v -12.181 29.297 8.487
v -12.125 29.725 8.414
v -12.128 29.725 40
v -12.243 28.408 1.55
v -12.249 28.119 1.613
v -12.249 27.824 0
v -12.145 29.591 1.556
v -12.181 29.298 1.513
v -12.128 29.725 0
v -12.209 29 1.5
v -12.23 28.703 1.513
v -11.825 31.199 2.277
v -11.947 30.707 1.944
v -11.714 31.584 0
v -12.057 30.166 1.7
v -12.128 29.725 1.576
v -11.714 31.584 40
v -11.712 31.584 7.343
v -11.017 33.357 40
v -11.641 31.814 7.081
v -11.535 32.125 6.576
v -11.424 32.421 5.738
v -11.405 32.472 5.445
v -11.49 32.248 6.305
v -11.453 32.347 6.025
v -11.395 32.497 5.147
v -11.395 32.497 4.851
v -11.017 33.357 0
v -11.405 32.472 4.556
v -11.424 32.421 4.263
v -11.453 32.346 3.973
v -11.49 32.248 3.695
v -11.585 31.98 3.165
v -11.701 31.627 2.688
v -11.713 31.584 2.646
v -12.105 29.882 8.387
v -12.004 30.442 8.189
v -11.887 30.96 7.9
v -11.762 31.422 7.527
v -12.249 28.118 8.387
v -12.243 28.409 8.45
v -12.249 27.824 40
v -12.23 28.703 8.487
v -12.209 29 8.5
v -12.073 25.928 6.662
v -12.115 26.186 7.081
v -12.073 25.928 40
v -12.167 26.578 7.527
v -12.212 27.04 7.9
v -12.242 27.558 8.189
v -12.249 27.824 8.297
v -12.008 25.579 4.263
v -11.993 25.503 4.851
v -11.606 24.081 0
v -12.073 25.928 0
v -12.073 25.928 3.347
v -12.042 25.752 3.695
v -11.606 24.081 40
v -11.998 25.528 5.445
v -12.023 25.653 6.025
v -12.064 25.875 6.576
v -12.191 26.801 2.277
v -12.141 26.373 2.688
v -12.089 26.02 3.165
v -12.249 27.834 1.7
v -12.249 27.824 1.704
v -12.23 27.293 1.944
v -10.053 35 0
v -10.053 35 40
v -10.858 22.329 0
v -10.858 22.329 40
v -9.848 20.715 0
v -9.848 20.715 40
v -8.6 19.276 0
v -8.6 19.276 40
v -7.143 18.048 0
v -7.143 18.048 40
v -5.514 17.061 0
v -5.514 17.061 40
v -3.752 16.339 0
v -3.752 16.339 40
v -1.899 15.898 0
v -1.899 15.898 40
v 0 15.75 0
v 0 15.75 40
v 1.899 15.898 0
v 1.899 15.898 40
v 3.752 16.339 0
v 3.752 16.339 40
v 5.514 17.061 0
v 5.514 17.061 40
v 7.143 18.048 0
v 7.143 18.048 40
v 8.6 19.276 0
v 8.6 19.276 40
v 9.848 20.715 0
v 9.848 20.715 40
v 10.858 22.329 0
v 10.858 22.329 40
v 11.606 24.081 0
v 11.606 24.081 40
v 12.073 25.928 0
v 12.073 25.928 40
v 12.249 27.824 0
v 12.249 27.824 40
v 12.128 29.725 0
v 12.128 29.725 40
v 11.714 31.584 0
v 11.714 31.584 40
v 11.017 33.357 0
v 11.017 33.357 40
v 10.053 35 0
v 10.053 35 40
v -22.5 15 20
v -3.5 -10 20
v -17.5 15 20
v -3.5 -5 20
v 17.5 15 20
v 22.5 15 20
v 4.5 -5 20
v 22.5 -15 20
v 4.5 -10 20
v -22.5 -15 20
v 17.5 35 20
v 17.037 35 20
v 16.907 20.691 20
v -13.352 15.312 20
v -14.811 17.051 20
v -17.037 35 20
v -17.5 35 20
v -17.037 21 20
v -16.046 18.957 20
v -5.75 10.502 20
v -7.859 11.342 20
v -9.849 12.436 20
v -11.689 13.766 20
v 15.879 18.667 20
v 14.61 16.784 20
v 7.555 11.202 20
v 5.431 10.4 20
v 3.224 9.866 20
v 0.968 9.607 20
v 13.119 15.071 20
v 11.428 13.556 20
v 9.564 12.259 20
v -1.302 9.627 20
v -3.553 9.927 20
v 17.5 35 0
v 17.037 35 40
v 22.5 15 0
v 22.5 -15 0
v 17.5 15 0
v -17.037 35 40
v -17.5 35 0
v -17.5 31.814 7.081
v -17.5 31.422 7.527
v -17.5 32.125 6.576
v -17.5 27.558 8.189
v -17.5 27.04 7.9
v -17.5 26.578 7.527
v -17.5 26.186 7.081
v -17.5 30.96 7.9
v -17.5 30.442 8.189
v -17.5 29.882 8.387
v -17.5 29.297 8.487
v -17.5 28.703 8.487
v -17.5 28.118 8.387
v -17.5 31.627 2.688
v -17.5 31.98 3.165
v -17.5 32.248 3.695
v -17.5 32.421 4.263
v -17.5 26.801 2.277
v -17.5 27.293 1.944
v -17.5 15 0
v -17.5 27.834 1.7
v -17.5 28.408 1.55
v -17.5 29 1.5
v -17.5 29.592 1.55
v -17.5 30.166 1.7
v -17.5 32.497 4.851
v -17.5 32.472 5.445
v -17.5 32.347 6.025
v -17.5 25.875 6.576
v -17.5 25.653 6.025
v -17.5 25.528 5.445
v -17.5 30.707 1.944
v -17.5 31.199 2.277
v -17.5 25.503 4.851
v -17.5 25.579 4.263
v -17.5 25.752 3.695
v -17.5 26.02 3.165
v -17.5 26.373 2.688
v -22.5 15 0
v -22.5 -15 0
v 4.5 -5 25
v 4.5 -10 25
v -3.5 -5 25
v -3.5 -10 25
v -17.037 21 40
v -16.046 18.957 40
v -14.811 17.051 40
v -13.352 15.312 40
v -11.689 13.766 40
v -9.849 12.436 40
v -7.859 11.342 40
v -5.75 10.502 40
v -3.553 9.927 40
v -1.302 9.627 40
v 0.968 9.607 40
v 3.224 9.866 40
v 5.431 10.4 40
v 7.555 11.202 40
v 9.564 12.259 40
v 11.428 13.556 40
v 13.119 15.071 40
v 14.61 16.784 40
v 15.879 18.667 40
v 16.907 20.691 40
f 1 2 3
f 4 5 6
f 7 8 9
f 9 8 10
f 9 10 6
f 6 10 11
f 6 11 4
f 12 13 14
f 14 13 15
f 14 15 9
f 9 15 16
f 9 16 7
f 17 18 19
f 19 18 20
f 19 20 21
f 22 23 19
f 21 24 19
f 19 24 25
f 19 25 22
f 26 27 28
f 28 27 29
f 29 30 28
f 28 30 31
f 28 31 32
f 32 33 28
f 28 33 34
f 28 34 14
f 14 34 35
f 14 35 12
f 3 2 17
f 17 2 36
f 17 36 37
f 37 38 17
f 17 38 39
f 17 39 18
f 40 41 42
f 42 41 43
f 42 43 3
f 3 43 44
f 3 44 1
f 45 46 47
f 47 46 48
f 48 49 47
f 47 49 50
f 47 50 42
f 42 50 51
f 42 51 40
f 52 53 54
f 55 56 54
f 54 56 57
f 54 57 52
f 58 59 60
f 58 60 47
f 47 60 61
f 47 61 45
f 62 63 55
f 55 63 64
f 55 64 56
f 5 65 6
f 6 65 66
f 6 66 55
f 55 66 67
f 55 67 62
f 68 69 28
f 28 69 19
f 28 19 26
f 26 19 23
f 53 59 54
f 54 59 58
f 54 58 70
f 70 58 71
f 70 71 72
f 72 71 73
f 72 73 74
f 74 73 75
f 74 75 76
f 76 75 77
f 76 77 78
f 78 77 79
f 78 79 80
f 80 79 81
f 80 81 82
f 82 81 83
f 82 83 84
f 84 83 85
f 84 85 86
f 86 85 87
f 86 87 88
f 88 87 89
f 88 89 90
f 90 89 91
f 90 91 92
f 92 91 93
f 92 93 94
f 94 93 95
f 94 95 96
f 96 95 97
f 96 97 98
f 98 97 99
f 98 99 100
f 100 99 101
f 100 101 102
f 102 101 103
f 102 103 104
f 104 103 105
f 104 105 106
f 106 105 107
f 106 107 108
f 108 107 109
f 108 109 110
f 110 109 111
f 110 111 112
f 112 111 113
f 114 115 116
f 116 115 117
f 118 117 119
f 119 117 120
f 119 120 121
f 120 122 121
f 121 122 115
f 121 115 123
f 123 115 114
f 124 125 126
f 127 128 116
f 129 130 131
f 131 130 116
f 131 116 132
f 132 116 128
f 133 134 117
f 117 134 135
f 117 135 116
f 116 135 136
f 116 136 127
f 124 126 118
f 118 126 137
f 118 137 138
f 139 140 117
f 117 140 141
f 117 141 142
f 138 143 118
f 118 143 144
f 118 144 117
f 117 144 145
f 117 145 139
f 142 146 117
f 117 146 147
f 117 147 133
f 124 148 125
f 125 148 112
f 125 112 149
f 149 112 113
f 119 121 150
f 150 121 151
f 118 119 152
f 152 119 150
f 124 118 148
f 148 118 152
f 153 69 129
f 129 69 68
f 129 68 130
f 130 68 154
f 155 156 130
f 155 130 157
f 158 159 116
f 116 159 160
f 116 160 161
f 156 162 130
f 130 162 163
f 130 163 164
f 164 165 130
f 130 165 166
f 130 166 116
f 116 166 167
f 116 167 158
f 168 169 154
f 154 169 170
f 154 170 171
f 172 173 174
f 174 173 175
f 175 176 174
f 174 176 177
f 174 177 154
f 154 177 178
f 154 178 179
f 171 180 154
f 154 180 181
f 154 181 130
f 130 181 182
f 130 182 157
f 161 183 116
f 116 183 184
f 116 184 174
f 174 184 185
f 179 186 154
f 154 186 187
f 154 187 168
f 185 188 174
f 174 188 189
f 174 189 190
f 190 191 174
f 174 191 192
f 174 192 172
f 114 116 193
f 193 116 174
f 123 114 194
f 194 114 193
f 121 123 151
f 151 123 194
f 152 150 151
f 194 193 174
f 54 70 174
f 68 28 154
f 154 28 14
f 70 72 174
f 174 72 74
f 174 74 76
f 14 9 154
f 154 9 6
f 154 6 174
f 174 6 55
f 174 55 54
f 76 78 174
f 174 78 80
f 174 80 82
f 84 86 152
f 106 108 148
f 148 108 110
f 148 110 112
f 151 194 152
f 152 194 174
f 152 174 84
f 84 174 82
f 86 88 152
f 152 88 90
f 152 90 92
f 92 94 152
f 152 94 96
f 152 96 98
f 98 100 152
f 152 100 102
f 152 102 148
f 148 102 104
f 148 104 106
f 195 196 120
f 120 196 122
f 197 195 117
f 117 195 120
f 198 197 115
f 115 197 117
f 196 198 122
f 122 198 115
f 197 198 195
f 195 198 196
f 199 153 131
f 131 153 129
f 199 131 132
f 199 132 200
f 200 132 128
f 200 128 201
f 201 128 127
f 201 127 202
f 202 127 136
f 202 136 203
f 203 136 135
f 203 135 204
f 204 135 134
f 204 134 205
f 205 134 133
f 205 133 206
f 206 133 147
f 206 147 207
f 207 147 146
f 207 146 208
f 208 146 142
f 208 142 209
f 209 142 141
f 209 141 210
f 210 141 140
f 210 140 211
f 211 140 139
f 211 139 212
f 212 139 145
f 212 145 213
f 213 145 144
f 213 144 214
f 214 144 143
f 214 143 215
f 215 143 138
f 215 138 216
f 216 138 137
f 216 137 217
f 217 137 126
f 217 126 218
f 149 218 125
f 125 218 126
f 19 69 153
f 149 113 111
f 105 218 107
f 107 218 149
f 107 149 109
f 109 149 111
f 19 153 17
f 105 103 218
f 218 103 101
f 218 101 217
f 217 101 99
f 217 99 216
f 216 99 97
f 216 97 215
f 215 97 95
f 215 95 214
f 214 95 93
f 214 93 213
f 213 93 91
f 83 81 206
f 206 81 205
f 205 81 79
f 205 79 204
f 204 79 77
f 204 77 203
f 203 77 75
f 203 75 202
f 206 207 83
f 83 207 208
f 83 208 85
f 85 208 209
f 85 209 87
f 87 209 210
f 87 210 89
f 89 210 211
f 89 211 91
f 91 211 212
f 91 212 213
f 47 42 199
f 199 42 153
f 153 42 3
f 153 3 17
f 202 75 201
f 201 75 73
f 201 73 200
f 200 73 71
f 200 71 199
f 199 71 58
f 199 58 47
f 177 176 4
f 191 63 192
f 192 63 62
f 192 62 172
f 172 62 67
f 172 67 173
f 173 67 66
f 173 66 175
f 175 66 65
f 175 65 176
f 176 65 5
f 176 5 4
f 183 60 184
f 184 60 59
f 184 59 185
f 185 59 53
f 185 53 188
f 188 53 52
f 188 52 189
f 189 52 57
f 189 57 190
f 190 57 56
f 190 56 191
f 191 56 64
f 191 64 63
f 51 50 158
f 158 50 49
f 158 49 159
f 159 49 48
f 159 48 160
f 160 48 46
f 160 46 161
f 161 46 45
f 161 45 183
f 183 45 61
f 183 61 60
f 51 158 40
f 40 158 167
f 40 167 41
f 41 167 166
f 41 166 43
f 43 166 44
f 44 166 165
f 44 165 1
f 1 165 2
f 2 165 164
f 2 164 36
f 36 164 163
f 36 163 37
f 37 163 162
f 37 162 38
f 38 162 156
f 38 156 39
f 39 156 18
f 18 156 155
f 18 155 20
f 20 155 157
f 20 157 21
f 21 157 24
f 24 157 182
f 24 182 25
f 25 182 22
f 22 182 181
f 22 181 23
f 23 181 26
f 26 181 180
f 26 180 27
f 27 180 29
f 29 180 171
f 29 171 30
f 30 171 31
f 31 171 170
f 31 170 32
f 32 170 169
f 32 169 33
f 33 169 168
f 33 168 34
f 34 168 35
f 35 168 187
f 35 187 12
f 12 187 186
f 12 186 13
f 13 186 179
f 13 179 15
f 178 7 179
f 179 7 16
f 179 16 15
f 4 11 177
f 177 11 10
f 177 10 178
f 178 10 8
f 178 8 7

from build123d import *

# Parameters (mm, degrees)
BOSS_EXTRUDE1_DEPTH     = 20
SKETCH2_W               = 8
SKETCH2_H               = 5
BOSS_EXTRUDE2_DEPTH     = 5
SKETCH3_R               = 12.25
CUT_EXTRUDE1_DEPTH      = 20
BOSS_EXTRUDE3_DEPTH     = 20
SKETCH6_R               = 3.5
CUT_EXTRUDE2_DEPTH      = 1
CUT_EXTRUDE2_DEPTH_BACK = 8


with BuildPart() as part:
    # Sketch1 → Boss-Extrude1 (new body)
    with BuildSketch(Plane.XY):
        Polygon((17.5, 15), (22.5, 15), (22.5, -15), (-22.5, -15), (-22.5, 15), (-17.5, 15), (-17.5, 35), (17.5, 35), align=None)
    extrude(amount=BOSS_EXTRUDE1_DEPTH)

    # Sketch2 → Boss-Extrude2 (add)
    with BuildSketch(Plane.XY.offset(20)):
        with Locations((0.5, -7.5)):
            Rectangle(SKETCH2_W, SKETCH2_H)
    extrude(amount=BOSS_EXTRUDE2_DEPTH)

    # Sketch3 → Cut-Extrude1 (cut)
    with BuildSketch(Plane.XY.offset(20)):
        with Locations((0, 28)):
            Circle(SKETCH3_R)
    extrude(amount=-CUT_EXTRUDE1_DEPTH, mode=Mode.SUBTRACT)

    # Sketch4 → Boss-Extrude3 (add)
    with BuildSketch(Plane.XY.offset(20)):
        with BuildLine():
            Line((-17.036725037, 35), (-17.036725037, 21))
            ThreePointArc((-17.036725037, 21), (-0.167488081, 9.582021073), (16.906605879, 20.691328599))
            Line((16.906605879, 20.691328599), (17.036725037, 35))
            Line((17.036725037, 35), (10.052984631, 35))
            ThreePointArc((10.052984631, 35), (0, 15.75), (-10.052984631, 35))
            Line((-10.052984631, 35), (-17.036725037, 35))
        make_face()
    extrude(amount=BOSS_EXTRUDE3_DEPTH)

    # Sketch6 → Cut-Extrude2 (cut, two sides)
    with BuildSketch(Plane.ZY.offset(17.5)) as cut_extrude2_sk:
        with Locations((5, 29)):
            Circle(SKETCH6_R)
    extrude(amount=CUT_EXTRUDE2_DEPTH, mode=Mode.SUBTRACT)
    extrude(cut_extrude2_sk.sketch, amount=-CUT_EXTRUDE2_DEPTH_BACK, mode=Mode.SUBTRACT)


solid = part.part
